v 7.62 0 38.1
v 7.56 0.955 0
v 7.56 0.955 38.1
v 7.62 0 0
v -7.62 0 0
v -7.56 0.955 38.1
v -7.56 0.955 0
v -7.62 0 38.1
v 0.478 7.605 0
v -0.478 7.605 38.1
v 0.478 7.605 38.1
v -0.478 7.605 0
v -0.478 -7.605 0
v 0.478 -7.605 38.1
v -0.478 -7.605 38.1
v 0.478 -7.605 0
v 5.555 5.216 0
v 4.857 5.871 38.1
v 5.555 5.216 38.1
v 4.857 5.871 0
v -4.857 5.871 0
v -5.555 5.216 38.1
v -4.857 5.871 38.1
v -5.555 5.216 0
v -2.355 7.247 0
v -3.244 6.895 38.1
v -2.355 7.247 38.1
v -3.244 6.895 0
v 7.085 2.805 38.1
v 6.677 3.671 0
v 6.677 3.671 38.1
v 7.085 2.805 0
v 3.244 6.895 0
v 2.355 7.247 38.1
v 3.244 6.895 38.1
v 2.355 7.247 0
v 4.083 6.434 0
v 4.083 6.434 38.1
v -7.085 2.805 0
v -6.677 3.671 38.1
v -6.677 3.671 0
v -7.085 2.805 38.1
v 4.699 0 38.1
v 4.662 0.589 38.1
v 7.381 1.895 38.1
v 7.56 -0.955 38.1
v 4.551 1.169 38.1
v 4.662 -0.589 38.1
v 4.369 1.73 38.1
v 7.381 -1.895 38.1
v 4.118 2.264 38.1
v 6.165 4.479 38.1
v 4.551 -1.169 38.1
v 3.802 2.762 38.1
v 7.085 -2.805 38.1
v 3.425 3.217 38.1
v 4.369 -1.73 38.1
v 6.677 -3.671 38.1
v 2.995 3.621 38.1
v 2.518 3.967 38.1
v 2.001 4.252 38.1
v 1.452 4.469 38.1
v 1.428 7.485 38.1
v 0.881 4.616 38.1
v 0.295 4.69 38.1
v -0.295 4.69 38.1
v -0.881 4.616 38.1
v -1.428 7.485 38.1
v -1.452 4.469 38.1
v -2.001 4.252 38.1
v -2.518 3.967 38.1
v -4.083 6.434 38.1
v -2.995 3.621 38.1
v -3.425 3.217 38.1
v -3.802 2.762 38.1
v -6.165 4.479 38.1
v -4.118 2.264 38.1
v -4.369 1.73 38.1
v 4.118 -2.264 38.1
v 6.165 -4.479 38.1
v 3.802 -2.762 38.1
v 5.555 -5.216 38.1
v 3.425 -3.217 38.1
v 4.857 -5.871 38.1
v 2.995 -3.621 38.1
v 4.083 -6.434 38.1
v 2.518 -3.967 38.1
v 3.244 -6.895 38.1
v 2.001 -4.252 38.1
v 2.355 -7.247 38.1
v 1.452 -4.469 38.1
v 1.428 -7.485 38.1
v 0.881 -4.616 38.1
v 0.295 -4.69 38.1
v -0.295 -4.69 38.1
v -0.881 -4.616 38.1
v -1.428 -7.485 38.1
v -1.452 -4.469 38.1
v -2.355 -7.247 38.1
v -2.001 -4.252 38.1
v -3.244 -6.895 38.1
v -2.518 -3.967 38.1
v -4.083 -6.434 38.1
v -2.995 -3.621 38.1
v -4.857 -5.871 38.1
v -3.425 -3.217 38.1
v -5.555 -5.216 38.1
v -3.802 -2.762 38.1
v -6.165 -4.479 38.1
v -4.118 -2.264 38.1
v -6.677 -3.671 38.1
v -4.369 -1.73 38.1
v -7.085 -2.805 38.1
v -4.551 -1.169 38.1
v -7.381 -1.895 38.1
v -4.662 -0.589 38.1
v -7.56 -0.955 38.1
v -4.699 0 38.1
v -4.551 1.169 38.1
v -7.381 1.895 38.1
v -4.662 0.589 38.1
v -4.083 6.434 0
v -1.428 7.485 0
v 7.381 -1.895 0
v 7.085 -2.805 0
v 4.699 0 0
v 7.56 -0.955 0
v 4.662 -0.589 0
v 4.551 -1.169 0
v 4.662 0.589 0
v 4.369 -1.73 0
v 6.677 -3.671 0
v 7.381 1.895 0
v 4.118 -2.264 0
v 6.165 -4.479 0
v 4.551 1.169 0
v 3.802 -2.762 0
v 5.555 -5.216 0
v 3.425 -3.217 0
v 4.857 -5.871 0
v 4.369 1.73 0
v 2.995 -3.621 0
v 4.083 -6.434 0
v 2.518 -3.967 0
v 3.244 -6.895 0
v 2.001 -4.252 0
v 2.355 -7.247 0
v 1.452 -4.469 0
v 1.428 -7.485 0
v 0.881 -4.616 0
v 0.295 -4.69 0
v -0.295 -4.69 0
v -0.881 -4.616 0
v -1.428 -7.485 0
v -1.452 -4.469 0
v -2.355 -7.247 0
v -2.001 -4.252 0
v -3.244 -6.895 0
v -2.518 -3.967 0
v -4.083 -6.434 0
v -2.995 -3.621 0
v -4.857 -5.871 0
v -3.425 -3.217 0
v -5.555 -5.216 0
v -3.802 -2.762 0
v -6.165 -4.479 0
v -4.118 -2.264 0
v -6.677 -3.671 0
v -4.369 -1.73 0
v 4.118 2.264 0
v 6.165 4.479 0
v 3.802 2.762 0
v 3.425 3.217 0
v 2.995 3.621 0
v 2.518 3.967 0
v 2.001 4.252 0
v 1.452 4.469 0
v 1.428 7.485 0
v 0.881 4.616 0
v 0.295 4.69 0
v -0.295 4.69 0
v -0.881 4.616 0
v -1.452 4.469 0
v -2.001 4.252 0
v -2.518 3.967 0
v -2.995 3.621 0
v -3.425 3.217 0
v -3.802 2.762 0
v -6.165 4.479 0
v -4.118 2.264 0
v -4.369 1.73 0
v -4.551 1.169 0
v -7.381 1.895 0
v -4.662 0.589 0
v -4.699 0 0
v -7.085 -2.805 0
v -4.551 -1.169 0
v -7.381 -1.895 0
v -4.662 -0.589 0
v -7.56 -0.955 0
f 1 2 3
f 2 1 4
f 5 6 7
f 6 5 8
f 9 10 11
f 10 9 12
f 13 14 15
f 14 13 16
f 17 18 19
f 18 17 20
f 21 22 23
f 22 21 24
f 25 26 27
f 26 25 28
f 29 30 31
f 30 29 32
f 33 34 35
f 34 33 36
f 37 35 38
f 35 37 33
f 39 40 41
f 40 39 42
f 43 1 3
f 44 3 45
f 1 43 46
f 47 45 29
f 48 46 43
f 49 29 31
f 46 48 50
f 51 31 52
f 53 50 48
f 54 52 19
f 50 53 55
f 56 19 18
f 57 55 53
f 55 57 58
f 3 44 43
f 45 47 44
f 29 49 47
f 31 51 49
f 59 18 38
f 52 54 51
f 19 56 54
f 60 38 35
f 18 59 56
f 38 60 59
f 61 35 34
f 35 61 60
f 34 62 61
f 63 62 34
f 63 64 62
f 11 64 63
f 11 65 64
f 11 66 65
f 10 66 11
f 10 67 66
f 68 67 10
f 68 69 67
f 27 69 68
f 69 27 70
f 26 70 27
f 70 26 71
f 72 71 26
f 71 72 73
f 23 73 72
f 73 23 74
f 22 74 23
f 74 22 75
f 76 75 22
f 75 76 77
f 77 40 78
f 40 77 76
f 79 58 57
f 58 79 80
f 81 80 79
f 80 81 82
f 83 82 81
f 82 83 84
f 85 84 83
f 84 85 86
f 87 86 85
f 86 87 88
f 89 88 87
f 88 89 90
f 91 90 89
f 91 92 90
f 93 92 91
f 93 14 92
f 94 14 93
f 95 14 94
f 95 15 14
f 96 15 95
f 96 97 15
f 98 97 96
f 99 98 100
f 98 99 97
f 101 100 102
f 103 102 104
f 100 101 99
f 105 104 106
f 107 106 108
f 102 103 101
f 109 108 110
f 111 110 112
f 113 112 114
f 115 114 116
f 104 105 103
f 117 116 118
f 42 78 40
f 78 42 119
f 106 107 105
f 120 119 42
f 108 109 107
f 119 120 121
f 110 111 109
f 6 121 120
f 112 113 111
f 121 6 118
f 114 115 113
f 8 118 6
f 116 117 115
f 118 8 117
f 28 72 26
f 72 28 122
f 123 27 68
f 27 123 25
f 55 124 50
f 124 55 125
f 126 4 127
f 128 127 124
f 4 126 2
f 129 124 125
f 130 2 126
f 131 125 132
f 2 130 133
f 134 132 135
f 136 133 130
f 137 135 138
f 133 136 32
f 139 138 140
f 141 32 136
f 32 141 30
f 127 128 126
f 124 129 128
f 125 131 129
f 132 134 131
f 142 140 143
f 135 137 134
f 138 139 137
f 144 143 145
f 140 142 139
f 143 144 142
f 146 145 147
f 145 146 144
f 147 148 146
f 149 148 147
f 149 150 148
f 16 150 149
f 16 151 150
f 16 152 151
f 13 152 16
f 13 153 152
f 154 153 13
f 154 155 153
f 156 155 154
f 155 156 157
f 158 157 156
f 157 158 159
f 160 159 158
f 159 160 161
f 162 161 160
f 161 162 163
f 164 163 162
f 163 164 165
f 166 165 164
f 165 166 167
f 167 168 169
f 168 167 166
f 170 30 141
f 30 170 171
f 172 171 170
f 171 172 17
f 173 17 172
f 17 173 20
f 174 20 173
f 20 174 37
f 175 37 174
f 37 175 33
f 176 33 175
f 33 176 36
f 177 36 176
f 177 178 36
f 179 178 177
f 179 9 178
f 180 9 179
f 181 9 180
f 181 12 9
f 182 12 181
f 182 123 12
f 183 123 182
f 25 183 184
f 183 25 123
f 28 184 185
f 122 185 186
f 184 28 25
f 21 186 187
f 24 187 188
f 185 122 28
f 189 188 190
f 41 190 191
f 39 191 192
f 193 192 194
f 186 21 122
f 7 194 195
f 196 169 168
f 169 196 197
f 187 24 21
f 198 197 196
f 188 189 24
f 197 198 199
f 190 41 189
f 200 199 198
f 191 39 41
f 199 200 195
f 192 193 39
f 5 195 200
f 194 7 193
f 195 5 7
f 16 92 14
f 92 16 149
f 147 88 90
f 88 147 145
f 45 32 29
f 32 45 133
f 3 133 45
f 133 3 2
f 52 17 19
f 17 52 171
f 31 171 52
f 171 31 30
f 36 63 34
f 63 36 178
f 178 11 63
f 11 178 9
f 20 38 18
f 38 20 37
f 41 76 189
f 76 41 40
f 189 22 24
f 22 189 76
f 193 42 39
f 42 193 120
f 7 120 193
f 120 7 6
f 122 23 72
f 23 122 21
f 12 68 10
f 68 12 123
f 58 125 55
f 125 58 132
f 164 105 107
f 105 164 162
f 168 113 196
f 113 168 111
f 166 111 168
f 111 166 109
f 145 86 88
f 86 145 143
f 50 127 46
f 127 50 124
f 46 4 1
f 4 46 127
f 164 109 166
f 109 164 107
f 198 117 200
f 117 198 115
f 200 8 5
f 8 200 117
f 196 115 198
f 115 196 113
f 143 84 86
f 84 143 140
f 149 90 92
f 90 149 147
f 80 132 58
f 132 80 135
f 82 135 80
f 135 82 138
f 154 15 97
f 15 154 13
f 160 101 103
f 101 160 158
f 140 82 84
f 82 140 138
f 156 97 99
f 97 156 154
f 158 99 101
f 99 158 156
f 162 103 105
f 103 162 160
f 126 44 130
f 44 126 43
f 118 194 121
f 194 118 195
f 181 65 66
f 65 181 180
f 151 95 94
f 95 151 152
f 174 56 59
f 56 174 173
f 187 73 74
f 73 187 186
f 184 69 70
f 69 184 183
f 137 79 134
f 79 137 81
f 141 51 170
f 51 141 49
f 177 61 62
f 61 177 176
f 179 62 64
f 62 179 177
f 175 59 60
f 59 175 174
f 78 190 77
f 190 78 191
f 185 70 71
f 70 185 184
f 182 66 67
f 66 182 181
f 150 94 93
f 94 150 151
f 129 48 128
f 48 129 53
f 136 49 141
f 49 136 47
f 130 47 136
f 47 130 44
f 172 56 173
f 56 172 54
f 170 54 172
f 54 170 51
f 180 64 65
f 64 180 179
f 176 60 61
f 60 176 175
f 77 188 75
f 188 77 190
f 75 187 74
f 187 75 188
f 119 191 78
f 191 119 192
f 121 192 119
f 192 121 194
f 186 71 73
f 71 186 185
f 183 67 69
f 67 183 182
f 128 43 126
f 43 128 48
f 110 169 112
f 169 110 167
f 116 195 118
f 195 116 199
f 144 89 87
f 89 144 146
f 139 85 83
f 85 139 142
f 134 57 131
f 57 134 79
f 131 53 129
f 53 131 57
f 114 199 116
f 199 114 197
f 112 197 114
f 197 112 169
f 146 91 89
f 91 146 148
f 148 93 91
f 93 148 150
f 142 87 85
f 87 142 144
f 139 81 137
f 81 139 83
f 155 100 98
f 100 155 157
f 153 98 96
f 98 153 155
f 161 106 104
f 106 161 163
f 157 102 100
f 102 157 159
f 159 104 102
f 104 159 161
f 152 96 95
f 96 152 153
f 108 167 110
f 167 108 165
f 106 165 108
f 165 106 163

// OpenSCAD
// Customize the invocations (which follow
// the modules declarations) at the bottom of the file.

// To get these to print the fine features created
// by the "text" command, I set "Outer wall" to
// 0.22mm.

minh = 1;	// Minimum height
inch = 25.4;
$fn=50;

id1 = .33*inch;
id2 = .37*inch;
od  = .60*inch;
height = 1.5*inch;

// Draw the shim.
difference() {
    cylinder(h=height,   d=od,  center=[0, 0, 0]);
    cylinder(h=height,   d=id2, center=[0, 0, 0]);
    cylinder(h=.38*inch, d=id2, center=[0, 0, 0]);
}
